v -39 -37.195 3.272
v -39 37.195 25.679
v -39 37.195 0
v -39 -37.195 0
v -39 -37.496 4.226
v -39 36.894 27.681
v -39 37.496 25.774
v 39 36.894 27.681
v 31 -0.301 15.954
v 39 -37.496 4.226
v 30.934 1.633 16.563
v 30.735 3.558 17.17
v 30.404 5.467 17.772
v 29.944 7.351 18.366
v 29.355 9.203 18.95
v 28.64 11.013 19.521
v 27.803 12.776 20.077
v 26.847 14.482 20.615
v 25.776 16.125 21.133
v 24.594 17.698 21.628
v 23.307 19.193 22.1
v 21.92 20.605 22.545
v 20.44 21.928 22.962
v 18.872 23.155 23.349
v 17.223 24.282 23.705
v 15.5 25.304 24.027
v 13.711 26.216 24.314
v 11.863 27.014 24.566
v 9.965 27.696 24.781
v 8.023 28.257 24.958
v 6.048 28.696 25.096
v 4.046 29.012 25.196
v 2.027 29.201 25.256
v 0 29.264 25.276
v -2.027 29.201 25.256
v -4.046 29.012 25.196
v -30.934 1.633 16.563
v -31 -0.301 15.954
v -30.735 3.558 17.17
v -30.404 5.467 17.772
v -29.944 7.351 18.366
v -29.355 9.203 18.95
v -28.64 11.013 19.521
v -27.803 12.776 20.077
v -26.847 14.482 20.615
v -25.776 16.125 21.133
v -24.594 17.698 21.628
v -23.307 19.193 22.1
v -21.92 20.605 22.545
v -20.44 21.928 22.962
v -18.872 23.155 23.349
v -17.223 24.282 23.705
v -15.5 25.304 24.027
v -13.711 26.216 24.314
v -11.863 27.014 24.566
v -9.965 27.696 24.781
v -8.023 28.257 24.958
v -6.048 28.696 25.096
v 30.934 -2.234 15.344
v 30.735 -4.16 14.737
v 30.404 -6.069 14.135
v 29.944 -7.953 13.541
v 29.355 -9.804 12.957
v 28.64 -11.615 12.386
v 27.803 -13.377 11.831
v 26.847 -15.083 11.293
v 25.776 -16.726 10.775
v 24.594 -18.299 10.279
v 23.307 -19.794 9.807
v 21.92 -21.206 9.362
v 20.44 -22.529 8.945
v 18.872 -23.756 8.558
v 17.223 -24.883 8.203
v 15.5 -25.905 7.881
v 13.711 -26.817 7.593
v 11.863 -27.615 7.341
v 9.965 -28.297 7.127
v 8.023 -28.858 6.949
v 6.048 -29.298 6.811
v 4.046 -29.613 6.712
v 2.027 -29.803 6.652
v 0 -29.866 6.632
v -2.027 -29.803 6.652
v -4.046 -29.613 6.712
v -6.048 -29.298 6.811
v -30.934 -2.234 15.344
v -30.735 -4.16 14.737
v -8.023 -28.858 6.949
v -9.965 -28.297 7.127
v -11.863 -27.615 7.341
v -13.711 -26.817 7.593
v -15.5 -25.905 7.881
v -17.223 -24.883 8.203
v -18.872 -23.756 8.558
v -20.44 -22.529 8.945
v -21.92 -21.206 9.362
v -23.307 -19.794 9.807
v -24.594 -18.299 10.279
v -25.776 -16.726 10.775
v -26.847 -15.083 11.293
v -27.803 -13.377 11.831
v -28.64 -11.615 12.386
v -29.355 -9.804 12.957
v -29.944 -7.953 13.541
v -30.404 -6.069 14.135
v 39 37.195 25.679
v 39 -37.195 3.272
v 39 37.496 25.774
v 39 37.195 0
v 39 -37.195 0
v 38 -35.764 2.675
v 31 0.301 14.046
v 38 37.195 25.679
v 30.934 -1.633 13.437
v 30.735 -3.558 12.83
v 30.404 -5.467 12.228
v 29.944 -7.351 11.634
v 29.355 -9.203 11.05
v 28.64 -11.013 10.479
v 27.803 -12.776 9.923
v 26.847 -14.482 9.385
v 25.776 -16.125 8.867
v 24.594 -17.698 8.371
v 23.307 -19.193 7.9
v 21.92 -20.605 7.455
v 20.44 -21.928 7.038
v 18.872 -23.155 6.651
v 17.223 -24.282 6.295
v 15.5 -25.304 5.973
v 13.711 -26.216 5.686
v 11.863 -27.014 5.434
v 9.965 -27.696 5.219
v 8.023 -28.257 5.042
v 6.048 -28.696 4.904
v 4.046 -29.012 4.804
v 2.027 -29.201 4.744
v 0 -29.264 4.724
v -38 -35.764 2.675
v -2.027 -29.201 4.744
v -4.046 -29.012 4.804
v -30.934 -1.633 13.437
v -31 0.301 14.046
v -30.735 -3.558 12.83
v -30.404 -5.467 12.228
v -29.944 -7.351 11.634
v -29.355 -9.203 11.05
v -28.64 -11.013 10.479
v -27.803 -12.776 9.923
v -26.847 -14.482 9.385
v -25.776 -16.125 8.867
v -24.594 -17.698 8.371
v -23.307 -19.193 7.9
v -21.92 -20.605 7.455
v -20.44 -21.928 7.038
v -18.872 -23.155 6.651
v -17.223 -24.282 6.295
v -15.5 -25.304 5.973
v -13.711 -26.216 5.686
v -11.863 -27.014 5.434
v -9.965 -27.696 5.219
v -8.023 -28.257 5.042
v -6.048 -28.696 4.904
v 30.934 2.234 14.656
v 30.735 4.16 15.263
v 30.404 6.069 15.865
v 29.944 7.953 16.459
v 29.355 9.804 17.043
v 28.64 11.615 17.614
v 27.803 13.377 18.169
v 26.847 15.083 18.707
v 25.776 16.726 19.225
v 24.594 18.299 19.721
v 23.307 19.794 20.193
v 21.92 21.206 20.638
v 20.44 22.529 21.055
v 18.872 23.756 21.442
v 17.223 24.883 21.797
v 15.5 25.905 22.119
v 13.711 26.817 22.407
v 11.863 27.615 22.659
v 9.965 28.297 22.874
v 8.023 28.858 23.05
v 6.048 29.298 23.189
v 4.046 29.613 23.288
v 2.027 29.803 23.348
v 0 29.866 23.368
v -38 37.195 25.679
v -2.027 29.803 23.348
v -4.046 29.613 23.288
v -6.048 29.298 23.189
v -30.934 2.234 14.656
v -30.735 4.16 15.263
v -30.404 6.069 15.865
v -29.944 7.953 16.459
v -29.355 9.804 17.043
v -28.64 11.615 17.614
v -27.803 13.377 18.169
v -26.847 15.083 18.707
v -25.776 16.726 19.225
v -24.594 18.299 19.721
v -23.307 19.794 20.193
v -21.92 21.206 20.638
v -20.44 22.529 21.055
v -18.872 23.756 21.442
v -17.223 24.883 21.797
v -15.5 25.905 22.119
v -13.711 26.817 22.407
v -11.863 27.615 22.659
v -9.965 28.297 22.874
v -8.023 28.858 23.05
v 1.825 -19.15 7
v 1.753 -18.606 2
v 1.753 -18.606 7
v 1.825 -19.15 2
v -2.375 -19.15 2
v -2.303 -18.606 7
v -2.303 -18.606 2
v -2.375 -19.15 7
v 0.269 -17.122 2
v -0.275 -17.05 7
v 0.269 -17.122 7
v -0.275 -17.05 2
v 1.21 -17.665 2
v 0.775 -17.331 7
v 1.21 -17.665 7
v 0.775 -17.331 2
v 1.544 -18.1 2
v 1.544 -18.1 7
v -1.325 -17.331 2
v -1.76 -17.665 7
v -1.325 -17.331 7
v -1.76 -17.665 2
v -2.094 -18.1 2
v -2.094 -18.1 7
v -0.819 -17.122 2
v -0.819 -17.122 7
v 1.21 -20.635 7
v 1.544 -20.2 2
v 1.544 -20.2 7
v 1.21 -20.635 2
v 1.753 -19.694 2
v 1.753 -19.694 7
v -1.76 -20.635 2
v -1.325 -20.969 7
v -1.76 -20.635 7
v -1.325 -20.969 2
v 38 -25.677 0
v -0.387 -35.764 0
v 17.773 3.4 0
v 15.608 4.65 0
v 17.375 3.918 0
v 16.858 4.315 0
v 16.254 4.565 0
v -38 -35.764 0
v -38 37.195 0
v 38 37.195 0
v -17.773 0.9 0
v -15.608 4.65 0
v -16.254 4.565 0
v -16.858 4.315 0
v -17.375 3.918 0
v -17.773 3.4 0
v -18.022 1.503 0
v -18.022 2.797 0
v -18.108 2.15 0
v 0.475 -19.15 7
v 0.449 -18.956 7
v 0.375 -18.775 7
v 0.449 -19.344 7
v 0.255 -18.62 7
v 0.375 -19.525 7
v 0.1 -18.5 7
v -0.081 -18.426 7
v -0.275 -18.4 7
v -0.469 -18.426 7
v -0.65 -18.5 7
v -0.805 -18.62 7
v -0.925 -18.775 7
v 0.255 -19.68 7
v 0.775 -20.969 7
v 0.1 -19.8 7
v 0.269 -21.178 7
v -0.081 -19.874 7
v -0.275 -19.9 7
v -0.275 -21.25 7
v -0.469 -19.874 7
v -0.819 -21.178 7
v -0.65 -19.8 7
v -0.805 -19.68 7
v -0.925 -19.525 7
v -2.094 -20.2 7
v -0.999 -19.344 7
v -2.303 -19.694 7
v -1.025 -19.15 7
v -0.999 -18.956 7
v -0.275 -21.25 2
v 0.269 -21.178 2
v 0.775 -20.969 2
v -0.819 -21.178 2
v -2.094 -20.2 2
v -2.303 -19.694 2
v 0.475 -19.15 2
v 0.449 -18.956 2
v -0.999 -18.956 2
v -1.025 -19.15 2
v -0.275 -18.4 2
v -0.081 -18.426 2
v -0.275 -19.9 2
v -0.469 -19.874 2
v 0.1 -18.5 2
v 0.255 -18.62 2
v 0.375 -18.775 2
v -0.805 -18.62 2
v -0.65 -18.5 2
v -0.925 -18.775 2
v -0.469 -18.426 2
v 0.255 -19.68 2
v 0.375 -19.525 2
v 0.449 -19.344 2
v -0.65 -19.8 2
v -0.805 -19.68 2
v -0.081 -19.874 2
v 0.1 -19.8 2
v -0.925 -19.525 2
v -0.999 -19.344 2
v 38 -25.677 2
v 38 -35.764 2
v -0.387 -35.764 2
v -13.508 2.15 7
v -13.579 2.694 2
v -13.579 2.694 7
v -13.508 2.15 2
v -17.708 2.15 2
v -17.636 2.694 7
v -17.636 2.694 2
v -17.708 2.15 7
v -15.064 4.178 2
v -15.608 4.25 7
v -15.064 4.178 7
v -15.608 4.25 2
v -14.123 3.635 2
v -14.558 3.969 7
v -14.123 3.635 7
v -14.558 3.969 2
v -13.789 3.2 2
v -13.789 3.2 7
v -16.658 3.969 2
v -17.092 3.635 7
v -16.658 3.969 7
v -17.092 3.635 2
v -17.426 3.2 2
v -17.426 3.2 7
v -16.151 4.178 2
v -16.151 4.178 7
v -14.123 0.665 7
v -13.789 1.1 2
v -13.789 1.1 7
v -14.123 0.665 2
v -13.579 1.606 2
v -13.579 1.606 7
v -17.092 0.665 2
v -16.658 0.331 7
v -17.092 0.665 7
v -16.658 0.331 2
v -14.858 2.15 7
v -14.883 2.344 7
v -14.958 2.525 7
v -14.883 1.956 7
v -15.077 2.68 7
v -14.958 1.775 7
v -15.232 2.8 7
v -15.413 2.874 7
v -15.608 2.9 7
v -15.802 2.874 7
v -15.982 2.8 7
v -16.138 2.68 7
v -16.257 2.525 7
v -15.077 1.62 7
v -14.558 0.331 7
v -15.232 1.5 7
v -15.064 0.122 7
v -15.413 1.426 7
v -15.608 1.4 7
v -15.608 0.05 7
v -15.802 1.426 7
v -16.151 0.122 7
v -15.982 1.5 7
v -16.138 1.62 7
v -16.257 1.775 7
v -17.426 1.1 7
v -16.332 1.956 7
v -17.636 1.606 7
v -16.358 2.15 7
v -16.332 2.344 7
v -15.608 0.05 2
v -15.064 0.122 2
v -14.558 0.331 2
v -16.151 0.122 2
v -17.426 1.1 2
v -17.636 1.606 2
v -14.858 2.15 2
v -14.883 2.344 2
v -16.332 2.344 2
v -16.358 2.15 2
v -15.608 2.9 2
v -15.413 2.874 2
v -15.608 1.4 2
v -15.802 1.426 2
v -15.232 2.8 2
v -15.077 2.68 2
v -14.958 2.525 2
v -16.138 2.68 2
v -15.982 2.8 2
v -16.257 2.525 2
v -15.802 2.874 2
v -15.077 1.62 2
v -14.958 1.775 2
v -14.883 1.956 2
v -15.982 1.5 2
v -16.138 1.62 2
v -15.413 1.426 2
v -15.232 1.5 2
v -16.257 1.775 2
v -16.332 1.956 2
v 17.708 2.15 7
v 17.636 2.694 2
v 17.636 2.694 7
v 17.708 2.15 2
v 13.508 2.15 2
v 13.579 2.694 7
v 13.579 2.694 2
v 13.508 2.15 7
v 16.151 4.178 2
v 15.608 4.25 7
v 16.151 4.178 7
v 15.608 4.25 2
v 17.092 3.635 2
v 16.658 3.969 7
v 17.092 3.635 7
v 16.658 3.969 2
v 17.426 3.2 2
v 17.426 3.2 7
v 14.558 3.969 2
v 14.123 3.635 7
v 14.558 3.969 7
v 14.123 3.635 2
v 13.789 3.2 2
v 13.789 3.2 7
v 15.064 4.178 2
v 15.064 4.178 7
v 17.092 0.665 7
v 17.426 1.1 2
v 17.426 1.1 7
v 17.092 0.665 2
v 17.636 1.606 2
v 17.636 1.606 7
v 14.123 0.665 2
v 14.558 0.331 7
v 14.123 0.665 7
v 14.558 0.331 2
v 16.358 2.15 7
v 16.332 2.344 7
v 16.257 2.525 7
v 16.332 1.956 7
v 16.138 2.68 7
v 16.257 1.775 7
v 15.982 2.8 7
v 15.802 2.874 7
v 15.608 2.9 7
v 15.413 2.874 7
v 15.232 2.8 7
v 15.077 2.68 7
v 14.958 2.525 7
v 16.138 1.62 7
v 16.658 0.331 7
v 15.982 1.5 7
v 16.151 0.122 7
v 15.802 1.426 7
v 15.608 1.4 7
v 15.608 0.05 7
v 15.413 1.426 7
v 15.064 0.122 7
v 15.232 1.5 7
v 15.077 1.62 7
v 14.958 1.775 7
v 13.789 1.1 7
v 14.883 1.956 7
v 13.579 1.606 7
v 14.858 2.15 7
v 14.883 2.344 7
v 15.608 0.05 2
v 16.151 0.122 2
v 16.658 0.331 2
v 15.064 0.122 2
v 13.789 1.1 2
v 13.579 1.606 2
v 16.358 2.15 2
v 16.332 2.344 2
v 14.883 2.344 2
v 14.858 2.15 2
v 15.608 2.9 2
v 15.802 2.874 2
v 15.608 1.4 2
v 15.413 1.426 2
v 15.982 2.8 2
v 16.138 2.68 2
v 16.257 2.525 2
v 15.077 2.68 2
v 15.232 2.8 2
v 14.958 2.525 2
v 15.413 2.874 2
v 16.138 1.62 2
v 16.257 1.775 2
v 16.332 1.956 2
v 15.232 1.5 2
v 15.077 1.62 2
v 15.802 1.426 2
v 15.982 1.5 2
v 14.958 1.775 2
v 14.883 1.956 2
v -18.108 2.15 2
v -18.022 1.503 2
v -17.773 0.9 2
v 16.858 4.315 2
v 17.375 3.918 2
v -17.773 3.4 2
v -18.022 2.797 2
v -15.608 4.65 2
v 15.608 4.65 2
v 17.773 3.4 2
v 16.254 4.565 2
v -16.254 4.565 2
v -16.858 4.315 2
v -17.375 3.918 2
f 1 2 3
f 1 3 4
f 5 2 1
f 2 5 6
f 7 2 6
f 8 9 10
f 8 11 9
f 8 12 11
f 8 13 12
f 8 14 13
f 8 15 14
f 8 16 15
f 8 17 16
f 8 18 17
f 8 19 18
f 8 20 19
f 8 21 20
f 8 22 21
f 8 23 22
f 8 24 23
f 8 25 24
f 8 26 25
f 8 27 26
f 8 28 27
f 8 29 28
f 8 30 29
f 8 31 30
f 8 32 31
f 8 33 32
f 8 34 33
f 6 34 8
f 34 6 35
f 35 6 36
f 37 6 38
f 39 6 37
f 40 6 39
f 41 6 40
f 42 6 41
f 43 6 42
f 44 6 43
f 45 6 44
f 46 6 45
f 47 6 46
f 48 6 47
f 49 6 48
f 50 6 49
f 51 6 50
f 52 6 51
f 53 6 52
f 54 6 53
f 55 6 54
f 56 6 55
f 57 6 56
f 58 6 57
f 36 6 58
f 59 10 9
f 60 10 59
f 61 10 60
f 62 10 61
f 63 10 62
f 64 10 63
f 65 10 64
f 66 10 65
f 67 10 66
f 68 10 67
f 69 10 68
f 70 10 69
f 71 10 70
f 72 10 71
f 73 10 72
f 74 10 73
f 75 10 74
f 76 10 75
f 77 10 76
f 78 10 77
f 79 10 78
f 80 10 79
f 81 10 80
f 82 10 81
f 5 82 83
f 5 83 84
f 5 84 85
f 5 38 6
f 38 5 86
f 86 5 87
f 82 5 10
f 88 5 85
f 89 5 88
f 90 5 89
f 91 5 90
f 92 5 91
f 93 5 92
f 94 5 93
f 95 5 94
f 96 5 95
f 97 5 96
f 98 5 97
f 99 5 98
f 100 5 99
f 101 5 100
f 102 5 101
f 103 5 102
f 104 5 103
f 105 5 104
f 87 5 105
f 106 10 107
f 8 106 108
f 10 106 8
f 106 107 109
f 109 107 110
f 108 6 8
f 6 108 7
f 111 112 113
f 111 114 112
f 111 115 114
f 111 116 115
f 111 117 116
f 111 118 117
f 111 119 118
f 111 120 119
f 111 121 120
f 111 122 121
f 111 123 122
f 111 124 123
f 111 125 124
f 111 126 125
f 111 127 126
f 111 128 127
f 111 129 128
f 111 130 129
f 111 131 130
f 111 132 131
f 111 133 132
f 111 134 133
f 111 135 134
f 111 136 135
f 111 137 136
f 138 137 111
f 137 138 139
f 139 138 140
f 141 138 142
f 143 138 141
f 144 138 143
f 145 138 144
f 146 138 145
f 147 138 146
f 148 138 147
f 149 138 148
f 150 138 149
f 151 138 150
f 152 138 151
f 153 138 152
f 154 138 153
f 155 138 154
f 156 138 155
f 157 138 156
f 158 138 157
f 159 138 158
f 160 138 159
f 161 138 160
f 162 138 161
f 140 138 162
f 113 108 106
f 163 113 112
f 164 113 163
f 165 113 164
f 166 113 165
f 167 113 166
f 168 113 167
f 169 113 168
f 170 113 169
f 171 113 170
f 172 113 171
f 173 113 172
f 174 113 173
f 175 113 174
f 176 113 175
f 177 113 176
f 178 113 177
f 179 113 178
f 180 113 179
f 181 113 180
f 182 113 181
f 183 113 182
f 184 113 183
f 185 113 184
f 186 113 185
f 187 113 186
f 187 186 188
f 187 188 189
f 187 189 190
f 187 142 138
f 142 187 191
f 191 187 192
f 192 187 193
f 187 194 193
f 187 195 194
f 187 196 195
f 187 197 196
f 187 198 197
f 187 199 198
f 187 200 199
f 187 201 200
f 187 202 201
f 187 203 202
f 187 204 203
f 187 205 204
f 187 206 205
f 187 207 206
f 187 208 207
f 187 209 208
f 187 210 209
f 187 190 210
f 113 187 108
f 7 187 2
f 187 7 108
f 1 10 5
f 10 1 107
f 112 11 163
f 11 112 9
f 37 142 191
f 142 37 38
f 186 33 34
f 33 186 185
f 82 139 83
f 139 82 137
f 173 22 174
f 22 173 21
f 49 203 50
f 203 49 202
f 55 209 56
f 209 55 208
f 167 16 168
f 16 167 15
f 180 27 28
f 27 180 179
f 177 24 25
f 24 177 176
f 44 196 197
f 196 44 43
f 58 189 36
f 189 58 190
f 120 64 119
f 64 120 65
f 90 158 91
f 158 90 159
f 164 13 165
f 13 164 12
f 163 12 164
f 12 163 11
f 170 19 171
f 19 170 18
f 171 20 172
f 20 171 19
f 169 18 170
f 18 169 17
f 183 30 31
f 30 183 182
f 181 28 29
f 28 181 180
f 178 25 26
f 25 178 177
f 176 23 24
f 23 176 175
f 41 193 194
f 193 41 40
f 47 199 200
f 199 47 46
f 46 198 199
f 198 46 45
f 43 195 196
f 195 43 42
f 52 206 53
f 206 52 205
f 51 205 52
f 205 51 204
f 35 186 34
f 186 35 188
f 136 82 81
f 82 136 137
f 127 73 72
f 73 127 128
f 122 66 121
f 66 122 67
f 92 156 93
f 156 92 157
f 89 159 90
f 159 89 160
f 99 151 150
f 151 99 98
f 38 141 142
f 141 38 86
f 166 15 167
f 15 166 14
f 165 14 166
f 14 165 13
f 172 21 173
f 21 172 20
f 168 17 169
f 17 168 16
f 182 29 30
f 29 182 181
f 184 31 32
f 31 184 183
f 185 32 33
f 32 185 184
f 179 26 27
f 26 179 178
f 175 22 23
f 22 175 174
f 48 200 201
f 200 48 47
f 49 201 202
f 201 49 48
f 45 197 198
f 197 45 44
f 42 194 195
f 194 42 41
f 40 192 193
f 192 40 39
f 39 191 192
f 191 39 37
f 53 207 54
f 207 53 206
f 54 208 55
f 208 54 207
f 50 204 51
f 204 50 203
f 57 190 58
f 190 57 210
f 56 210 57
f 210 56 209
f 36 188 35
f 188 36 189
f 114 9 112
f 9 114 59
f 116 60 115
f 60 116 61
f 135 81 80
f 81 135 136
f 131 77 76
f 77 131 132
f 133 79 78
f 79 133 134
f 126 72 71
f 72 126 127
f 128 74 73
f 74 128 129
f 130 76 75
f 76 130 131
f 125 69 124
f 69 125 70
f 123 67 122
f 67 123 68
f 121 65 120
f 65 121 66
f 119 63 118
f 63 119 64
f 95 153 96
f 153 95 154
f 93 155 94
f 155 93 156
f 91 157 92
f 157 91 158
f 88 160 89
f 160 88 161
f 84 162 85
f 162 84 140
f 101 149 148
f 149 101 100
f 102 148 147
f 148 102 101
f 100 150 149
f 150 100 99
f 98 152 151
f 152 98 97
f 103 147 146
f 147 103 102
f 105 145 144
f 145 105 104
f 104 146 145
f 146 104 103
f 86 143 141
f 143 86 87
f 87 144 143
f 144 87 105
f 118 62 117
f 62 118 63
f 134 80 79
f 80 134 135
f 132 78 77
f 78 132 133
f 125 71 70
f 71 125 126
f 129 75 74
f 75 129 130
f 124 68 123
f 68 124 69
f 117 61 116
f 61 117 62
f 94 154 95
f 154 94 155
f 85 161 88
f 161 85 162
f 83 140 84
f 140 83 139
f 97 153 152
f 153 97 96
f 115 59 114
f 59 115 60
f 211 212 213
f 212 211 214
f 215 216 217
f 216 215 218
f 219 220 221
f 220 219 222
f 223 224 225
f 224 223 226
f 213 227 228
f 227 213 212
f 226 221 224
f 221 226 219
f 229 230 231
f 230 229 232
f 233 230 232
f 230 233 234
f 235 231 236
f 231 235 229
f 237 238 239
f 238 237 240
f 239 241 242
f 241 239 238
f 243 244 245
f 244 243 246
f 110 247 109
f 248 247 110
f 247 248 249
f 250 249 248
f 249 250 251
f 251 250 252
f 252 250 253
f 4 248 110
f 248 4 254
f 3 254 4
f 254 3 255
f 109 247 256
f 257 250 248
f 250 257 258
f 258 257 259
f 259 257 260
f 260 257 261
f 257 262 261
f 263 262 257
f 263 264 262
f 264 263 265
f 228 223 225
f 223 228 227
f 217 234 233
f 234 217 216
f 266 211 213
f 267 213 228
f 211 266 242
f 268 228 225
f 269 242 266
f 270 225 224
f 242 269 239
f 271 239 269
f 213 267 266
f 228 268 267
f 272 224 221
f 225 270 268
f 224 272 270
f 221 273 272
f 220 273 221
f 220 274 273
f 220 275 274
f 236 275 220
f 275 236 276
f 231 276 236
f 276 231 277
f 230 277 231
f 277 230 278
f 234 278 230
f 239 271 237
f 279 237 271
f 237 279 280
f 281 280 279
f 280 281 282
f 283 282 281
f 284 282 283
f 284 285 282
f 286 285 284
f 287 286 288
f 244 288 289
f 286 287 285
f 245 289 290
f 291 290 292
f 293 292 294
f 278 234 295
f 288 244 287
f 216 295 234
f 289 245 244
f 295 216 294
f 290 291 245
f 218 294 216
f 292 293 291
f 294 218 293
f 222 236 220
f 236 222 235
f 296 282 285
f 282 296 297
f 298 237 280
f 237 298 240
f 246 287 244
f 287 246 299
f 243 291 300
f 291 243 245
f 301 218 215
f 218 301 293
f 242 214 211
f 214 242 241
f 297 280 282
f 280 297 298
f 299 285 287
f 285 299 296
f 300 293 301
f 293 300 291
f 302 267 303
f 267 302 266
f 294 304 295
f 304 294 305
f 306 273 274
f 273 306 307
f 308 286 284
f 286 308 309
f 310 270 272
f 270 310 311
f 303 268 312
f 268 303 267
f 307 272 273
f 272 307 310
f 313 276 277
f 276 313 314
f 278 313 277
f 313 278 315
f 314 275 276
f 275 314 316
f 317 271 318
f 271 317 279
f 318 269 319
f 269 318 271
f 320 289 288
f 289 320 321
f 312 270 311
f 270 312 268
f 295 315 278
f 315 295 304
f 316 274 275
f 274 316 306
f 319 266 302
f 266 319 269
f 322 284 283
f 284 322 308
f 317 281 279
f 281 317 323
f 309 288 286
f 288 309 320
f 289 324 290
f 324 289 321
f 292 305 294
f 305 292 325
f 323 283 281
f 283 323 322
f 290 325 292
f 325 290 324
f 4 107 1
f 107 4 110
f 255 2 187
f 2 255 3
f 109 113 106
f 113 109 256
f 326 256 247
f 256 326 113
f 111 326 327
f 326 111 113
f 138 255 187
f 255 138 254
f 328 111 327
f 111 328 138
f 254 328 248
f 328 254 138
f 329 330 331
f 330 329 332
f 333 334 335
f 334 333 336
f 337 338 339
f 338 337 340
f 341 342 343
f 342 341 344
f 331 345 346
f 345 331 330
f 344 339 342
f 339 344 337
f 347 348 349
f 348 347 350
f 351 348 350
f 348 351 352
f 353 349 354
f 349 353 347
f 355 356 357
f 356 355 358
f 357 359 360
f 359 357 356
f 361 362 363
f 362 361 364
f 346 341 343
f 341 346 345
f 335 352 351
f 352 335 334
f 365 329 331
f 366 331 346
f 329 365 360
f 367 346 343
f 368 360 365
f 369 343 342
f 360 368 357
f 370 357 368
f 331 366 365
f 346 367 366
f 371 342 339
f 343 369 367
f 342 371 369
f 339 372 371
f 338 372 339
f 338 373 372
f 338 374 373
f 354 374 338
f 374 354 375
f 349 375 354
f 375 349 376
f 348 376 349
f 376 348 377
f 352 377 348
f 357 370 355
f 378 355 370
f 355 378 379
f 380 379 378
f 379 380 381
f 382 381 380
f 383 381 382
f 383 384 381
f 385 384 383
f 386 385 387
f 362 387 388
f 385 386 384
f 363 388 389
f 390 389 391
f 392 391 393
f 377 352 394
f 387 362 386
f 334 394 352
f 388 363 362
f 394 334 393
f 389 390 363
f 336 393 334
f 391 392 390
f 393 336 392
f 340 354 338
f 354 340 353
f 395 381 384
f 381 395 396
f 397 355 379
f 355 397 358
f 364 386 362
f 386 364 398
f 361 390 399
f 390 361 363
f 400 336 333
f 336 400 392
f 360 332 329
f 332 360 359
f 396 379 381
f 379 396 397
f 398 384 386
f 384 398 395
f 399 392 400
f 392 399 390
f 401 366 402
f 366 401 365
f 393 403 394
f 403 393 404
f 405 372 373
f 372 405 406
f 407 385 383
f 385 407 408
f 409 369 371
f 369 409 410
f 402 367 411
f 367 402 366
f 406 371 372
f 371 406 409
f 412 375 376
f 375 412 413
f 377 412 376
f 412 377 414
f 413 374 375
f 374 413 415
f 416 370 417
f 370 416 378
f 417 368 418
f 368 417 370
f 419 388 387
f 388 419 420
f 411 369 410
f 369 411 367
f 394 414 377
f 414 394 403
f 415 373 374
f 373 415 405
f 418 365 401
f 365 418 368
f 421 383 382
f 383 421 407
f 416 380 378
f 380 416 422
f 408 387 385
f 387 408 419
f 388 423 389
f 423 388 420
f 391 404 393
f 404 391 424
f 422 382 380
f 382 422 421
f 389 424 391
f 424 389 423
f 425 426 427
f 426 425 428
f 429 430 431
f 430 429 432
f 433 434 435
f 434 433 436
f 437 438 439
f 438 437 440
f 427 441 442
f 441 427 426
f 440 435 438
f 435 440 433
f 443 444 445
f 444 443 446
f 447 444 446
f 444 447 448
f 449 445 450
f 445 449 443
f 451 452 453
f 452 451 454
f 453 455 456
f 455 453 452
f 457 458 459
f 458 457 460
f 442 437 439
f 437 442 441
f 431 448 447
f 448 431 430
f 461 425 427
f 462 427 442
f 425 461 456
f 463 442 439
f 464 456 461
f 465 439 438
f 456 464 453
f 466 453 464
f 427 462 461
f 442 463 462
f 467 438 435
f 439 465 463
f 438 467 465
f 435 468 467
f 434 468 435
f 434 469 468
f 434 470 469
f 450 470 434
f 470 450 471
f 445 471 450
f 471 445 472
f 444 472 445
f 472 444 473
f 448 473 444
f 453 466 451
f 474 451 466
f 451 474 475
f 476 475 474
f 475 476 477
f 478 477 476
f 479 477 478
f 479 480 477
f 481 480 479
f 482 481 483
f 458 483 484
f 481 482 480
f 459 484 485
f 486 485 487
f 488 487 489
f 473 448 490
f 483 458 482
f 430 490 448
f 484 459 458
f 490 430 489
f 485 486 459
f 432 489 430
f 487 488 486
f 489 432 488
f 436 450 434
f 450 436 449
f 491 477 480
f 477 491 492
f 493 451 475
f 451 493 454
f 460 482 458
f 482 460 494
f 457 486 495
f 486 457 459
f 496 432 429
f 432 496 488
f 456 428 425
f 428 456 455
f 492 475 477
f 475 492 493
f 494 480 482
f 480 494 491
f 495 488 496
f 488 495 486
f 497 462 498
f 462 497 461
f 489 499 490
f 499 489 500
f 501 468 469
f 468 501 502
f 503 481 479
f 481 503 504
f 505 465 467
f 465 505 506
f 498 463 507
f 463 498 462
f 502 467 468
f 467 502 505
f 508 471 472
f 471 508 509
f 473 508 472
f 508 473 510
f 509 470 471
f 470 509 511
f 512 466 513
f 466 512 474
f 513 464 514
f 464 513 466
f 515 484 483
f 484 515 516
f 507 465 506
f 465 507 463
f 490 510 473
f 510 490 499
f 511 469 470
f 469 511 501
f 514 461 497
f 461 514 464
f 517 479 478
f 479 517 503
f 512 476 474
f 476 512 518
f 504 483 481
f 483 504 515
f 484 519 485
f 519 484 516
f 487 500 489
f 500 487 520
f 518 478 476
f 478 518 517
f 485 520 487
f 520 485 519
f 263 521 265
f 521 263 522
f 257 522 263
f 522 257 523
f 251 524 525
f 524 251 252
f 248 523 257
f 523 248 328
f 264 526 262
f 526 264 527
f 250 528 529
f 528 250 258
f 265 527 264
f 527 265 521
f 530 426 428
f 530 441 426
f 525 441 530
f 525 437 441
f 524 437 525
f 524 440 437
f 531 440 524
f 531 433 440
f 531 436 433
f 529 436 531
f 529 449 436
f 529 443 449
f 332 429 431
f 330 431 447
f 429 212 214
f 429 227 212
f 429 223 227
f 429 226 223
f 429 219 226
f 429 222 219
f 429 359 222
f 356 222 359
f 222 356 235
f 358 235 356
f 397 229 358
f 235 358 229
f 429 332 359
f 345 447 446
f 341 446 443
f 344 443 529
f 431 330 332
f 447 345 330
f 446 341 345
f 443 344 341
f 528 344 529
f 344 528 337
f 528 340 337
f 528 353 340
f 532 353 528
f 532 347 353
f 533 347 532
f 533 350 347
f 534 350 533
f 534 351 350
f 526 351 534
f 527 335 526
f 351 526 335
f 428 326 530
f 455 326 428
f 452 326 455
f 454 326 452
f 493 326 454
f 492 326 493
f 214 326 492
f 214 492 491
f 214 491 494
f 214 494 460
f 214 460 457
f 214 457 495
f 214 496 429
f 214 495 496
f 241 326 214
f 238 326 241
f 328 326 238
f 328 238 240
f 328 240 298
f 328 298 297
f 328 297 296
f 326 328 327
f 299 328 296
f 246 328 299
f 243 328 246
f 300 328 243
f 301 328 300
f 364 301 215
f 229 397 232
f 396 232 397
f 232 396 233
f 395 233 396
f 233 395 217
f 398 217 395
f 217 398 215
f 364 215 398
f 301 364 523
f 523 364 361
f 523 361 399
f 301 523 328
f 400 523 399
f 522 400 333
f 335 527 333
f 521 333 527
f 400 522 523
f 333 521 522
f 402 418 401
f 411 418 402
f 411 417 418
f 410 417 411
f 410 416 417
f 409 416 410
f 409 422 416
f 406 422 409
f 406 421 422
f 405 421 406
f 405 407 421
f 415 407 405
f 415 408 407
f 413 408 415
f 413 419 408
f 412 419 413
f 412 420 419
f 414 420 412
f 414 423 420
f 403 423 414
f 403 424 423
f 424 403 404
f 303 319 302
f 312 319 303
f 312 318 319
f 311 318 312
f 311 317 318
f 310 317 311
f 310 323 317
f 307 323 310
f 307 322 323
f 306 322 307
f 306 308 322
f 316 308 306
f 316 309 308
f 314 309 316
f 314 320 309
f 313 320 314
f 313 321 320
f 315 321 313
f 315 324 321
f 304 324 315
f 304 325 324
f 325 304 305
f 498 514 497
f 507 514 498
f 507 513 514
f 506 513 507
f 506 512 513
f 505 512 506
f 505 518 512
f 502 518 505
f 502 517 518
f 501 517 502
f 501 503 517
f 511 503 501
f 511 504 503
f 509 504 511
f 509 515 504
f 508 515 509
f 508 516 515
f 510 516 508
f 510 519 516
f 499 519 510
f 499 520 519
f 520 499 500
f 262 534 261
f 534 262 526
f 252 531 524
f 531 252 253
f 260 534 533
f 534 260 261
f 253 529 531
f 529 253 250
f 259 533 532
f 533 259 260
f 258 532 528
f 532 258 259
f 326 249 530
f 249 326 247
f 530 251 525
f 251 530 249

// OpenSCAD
$fn=24;

size = 78;

height = 15;
thickness = 2;
angle = 17.5;


module pegs(){
	location(){
		peg();
	}
}

module peg(){
	difference() {
		cylinder(h = 7, d = 4.2);
		cylinder(h = 7, d = 1.5);
	}
}

module location(){
	translate([-31.215/2, 2.15, 0])
    children();
	translate([31.215/2, 2.15, 0])
	children();
	translate([-0.275, -19.15, 0])
	children();
}

//the tilted top surface with a hole cut out
module case(){
	translate([0,0,height])
	rotate([angle,0,0])
	difference(){
		cube([size,size,thickness], center = true);
		cylinder(d = 62, h = thickness, center = true, $fn = 96);
	}
}

//the four walls of the outside box I believe
module outside(){
    difference(){
      linear_extrude(h=50){
        rotate([angle,0,0]) 
        square([size,size], center = true);
      }
      
      linear_extrude(h=60){
        rotate([angle,0,0]) 
        translate([0,1,0]) square([size-2,size-1], center = true);
      }
  }
}

//the total bottom, including the platform for the stilts
module bottom(){
	difference(){
	    outside();
	    translate([0,0,height]) rotate([angle,0,0]) translate([0,0,50]) cube([602,602,100], center = true);
	}
    
    	hull(){
		location(){
			cylinder(d = 5, h = 2);
		}
        
        translate([-0.275, -36, 0])cube([38.5,10,2]);
	};
}

pegs();
case();
bottom();
